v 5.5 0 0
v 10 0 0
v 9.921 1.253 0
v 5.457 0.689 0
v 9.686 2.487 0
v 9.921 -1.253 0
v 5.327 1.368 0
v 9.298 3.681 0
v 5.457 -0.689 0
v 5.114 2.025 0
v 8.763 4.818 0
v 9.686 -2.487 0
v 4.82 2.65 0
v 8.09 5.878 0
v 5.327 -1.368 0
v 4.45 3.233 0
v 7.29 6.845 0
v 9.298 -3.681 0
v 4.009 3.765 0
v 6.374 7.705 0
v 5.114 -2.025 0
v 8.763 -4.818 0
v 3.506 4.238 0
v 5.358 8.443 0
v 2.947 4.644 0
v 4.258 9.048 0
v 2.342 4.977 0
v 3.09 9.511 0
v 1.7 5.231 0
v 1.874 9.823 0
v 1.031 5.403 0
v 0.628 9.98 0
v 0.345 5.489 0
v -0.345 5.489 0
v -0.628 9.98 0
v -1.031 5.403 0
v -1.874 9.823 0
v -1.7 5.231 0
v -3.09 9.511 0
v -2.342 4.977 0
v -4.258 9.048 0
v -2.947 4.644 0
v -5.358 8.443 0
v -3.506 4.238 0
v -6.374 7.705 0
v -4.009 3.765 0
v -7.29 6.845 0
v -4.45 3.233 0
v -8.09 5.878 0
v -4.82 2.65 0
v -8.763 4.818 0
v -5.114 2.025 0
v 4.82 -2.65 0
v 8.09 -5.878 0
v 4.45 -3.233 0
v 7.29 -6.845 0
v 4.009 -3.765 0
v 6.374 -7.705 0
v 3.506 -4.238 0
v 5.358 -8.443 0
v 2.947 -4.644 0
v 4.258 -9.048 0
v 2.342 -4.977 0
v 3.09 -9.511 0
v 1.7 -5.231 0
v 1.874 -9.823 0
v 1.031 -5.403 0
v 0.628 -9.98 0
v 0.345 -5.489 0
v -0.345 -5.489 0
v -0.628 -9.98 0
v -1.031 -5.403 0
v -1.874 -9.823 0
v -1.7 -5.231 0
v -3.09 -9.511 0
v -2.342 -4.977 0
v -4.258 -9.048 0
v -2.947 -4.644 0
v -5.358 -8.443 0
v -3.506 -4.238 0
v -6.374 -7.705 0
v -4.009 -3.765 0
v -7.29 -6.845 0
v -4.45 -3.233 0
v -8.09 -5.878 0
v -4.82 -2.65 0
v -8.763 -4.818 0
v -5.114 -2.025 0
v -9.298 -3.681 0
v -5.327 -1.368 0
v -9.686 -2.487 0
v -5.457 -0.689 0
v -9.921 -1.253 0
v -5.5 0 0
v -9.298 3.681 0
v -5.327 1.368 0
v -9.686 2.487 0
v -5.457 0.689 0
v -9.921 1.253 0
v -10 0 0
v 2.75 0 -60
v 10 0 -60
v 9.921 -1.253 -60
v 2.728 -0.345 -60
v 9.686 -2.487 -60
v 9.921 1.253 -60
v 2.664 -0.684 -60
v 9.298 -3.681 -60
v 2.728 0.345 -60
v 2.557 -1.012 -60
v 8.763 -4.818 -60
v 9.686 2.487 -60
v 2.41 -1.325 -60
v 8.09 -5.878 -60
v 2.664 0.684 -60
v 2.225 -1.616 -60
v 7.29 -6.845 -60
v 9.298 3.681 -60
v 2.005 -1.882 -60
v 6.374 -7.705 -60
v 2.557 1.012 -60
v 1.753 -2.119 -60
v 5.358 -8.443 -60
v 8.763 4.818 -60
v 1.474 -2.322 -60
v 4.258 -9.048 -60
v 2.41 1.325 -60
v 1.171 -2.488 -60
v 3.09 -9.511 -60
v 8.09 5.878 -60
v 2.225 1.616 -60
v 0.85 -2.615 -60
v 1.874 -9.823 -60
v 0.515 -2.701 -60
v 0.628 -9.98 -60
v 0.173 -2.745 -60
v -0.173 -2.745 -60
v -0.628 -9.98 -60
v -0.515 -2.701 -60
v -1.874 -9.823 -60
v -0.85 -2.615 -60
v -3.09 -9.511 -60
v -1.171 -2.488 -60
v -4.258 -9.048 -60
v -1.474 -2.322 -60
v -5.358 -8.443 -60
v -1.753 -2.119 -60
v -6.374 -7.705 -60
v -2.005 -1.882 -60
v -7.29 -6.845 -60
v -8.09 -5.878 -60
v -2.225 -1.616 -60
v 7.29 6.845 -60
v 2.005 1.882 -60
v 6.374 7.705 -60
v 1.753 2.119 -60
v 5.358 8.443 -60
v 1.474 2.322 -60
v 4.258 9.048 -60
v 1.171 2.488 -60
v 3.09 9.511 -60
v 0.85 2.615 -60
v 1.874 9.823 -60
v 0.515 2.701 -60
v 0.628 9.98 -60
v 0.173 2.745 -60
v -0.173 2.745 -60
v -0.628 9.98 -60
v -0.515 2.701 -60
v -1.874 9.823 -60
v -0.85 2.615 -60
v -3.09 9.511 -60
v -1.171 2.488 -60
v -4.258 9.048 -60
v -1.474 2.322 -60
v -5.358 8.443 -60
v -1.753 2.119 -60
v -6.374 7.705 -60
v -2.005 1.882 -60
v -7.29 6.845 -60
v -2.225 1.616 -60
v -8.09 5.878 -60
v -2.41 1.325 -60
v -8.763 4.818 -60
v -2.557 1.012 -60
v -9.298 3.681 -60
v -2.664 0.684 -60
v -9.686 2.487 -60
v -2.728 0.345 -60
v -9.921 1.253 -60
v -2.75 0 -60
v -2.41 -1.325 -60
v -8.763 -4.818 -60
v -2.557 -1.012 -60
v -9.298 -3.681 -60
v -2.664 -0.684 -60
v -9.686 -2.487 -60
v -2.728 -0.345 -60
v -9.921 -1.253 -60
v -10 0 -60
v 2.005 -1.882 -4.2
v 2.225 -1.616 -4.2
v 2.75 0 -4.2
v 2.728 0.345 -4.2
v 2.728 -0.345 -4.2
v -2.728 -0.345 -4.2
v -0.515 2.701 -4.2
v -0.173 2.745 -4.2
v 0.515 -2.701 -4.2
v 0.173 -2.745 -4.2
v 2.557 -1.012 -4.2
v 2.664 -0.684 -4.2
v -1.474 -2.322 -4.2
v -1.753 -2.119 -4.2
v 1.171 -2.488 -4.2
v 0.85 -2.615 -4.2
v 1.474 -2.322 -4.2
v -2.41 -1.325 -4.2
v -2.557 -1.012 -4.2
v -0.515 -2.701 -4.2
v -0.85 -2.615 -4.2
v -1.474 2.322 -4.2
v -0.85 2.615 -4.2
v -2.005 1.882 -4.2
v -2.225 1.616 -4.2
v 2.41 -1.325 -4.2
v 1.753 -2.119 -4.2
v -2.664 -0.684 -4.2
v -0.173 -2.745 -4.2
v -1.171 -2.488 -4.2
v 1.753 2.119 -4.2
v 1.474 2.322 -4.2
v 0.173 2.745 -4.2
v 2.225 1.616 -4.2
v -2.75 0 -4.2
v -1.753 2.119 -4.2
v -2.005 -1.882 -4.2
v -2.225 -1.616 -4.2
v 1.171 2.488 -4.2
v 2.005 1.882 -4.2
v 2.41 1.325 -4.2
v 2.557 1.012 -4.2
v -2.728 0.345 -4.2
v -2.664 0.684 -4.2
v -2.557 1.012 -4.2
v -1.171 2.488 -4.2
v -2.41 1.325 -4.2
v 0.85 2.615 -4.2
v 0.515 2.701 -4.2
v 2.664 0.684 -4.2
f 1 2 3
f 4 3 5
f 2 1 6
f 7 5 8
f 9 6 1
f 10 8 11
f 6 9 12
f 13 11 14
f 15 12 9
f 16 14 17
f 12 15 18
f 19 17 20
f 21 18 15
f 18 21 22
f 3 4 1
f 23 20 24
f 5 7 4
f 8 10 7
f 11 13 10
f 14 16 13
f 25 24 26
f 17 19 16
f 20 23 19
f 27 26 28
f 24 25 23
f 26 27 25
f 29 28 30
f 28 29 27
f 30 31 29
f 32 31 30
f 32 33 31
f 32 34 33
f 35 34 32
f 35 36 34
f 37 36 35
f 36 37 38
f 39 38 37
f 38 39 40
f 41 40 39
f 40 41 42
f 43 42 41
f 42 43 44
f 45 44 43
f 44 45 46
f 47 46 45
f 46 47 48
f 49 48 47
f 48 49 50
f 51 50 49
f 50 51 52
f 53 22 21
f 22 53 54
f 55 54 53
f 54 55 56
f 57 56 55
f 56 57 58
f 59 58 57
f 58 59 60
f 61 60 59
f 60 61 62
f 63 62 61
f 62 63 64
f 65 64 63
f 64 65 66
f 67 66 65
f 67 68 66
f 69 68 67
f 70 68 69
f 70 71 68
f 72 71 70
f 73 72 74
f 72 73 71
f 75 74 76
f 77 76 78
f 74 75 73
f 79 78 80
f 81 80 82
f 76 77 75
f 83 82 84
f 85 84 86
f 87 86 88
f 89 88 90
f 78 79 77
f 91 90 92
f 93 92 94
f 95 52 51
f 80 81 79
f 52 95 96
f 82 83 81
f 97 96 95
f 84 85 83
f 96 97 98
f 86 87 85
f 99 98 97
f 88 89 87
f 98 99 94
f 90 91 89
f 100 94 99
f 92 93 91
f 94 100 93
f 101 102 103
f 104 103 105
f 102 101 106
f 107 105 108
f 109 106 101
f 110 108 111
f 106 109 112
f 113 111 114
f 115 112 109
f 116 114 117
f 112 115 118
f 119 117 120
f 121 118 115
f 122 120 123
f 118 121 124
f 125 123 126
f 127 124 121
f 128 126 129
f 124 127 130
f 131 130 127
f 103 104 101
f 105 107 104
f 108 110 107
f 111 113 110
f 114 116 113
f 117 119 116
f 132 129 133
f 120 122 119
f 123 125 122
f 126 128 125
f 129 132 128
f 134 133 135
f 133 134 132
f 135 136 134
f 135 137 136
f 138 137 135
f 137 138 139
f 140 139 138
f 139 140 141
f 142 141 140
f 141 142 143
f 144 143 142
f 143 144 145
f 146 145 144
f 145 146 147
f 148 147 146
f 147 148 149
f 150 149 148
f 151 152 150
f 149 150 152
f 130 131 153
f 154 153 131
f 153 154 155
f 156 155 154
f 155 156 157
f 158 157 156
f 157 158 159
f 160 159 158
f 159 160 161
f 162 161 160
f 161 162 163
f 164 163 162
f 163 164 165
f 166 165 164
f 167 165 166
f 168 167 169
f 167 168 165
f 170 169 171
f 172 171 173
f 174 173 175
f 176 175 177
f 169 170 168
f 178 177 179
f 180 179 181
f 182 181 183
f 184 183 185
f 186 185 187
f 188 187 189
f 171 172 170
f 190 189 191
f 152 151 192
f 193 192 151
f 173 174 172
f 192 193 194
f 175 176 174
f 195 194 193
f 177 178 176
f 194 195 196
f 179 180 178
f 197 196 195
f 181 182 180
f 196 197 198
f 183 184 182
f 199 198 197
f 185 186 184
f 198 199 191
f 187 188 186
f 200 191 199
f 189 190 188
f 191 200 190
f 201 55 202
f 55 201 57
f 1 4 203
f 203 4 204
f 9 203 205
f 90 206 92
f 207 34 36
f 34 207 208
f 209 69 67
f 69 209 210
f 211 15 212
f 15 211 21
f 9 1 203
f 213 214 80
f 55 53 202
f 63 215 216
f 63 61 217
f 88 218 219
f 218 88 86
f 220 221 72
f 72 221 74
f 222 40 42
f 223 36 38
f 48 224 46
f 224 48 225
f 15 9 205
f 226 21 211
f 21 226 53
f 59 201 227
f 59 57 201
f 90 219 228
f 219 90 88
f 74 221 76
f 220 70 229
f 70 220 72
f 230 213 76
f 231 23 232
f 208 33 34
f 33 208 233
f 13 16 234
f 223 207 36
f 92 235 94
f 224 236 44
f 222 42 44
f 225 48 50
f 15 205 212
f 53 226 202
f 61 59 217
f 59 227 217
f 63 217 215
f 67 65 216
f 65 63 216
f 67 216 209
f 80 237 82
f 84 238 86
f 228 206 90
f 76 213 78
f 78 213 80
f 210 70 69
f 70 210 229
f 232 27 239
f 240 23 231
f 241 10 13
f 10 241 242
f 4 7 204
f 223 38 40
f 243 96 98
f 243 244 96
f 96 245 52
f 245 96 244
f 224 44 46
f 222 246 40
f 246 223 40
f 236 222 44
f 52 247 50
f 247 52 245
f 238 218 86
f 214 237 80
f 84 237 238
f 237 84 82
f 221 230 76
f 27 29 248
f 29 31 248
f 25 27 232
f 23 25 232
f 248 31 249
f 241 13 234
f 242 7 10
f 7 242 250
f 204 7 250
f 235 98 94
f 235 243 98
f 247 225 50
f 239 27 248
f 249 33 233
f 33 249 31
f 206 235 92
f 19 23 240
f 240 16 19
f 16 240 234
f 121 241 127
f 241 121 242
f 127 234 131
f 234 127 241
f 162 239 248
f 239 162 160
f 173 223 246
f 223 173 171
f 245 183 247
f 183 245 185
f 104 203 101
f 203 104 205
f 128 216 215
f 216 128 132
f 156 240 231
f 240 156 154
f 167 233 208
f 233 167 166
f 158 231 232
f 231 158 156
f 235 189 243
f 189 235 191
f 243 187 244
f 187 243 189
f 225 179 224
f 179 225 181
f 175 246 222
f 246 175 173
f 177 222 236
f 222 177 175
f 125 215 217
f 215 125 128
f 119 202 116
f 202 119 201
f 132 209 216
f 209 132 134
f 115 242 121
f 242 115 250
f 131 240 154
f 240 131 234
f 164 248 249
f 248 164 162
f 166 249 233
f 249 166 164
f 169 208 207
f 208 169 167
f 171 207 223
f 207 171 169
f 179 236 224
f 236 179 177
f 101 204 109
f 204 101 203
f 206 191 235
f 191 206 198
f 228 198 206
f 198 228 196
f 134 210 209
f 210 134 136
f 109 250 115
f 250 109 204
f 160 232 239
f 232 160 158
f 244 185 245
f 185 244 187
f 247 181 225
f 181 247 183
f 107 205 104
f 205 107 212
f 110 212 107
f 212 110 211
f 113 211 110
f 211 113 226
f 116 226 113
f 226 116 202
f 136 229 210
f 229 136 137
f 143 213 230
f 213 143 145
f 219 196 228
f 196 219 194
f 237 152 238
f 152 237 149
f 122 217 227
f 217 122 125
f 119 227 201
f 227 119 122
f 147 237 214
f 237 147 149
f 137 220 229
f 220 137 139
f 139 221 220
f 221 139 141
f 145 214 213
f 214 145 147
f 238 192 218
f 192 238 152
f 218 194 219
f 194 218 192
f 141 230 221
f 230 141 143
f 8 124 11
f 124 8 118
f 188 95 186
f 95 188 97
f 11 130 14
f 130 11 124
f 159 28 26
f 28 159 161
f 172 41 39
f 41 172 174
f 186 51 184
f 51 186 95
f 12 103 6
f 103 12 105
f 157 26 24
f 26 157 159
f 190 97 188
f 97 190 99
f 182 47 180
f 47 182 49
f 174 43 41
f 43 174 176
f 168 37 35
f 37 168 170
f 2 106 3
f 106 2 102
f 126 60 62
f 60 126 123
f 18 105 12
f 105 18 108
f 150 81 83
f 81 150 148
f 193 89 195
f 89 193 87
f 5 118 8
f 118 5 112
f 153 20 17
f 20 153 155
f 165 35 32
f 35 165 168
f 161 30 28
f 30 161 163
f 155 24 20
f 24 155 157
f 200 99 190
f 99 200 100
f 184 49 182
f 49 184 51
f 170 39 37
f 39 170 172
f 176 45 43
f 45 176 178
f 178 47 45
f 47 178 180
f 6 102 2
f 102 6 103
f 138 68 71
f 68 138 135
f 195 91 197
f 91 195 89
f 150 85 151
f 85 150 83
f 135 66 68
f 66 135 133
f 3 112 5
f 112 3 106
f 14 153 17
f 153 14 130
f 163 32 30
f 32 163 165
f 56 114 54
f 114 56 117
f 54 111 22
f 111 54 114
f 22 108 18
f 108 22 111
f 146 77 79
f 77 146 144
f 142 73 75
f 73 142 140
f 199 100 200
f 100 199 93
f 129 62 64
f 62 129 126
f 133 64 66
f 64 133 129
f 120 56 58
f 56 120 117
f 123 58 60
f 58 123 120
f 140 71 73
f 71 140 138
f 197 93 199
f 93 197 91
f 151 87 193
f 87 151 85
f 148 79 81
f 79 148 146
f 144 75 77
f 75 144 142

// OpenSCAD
$fn = 50;


difference() {
	union() {
		translate(v = [0, 0, -60.0000000000]) {
			cylinder(h = 60, r = 10.0000000000);
		}
		cylinder(h = 0, r = 19.0000000000);
	}
	union() {
		translate(v = [0, 0, 0]) {
			rotate(a = [0, 0, 0]) {
				difference() {
					union() {
						#translate(v = [0, 0, -60.0000000000]) {
							cylinder(h = 60, r = 2.2500000000);
						}
						#translate(v = [0, 0, -4.2000000000]) {
							cylinder(h = 4.2000000000, r1 = 2.7500000000, r2 = 5.5000000000);
						}
						#translate(v = [0, 0, -60.0000000000]) {
							cylinder(h = 60, r = 2.7500000000);
						}
						#translate(v = [0, 0, -60.0000000000]) {
							cylinder(h = 60, r = 2.2500000000);
						}
					}
					union();
				}
			}
		}
	}
}
